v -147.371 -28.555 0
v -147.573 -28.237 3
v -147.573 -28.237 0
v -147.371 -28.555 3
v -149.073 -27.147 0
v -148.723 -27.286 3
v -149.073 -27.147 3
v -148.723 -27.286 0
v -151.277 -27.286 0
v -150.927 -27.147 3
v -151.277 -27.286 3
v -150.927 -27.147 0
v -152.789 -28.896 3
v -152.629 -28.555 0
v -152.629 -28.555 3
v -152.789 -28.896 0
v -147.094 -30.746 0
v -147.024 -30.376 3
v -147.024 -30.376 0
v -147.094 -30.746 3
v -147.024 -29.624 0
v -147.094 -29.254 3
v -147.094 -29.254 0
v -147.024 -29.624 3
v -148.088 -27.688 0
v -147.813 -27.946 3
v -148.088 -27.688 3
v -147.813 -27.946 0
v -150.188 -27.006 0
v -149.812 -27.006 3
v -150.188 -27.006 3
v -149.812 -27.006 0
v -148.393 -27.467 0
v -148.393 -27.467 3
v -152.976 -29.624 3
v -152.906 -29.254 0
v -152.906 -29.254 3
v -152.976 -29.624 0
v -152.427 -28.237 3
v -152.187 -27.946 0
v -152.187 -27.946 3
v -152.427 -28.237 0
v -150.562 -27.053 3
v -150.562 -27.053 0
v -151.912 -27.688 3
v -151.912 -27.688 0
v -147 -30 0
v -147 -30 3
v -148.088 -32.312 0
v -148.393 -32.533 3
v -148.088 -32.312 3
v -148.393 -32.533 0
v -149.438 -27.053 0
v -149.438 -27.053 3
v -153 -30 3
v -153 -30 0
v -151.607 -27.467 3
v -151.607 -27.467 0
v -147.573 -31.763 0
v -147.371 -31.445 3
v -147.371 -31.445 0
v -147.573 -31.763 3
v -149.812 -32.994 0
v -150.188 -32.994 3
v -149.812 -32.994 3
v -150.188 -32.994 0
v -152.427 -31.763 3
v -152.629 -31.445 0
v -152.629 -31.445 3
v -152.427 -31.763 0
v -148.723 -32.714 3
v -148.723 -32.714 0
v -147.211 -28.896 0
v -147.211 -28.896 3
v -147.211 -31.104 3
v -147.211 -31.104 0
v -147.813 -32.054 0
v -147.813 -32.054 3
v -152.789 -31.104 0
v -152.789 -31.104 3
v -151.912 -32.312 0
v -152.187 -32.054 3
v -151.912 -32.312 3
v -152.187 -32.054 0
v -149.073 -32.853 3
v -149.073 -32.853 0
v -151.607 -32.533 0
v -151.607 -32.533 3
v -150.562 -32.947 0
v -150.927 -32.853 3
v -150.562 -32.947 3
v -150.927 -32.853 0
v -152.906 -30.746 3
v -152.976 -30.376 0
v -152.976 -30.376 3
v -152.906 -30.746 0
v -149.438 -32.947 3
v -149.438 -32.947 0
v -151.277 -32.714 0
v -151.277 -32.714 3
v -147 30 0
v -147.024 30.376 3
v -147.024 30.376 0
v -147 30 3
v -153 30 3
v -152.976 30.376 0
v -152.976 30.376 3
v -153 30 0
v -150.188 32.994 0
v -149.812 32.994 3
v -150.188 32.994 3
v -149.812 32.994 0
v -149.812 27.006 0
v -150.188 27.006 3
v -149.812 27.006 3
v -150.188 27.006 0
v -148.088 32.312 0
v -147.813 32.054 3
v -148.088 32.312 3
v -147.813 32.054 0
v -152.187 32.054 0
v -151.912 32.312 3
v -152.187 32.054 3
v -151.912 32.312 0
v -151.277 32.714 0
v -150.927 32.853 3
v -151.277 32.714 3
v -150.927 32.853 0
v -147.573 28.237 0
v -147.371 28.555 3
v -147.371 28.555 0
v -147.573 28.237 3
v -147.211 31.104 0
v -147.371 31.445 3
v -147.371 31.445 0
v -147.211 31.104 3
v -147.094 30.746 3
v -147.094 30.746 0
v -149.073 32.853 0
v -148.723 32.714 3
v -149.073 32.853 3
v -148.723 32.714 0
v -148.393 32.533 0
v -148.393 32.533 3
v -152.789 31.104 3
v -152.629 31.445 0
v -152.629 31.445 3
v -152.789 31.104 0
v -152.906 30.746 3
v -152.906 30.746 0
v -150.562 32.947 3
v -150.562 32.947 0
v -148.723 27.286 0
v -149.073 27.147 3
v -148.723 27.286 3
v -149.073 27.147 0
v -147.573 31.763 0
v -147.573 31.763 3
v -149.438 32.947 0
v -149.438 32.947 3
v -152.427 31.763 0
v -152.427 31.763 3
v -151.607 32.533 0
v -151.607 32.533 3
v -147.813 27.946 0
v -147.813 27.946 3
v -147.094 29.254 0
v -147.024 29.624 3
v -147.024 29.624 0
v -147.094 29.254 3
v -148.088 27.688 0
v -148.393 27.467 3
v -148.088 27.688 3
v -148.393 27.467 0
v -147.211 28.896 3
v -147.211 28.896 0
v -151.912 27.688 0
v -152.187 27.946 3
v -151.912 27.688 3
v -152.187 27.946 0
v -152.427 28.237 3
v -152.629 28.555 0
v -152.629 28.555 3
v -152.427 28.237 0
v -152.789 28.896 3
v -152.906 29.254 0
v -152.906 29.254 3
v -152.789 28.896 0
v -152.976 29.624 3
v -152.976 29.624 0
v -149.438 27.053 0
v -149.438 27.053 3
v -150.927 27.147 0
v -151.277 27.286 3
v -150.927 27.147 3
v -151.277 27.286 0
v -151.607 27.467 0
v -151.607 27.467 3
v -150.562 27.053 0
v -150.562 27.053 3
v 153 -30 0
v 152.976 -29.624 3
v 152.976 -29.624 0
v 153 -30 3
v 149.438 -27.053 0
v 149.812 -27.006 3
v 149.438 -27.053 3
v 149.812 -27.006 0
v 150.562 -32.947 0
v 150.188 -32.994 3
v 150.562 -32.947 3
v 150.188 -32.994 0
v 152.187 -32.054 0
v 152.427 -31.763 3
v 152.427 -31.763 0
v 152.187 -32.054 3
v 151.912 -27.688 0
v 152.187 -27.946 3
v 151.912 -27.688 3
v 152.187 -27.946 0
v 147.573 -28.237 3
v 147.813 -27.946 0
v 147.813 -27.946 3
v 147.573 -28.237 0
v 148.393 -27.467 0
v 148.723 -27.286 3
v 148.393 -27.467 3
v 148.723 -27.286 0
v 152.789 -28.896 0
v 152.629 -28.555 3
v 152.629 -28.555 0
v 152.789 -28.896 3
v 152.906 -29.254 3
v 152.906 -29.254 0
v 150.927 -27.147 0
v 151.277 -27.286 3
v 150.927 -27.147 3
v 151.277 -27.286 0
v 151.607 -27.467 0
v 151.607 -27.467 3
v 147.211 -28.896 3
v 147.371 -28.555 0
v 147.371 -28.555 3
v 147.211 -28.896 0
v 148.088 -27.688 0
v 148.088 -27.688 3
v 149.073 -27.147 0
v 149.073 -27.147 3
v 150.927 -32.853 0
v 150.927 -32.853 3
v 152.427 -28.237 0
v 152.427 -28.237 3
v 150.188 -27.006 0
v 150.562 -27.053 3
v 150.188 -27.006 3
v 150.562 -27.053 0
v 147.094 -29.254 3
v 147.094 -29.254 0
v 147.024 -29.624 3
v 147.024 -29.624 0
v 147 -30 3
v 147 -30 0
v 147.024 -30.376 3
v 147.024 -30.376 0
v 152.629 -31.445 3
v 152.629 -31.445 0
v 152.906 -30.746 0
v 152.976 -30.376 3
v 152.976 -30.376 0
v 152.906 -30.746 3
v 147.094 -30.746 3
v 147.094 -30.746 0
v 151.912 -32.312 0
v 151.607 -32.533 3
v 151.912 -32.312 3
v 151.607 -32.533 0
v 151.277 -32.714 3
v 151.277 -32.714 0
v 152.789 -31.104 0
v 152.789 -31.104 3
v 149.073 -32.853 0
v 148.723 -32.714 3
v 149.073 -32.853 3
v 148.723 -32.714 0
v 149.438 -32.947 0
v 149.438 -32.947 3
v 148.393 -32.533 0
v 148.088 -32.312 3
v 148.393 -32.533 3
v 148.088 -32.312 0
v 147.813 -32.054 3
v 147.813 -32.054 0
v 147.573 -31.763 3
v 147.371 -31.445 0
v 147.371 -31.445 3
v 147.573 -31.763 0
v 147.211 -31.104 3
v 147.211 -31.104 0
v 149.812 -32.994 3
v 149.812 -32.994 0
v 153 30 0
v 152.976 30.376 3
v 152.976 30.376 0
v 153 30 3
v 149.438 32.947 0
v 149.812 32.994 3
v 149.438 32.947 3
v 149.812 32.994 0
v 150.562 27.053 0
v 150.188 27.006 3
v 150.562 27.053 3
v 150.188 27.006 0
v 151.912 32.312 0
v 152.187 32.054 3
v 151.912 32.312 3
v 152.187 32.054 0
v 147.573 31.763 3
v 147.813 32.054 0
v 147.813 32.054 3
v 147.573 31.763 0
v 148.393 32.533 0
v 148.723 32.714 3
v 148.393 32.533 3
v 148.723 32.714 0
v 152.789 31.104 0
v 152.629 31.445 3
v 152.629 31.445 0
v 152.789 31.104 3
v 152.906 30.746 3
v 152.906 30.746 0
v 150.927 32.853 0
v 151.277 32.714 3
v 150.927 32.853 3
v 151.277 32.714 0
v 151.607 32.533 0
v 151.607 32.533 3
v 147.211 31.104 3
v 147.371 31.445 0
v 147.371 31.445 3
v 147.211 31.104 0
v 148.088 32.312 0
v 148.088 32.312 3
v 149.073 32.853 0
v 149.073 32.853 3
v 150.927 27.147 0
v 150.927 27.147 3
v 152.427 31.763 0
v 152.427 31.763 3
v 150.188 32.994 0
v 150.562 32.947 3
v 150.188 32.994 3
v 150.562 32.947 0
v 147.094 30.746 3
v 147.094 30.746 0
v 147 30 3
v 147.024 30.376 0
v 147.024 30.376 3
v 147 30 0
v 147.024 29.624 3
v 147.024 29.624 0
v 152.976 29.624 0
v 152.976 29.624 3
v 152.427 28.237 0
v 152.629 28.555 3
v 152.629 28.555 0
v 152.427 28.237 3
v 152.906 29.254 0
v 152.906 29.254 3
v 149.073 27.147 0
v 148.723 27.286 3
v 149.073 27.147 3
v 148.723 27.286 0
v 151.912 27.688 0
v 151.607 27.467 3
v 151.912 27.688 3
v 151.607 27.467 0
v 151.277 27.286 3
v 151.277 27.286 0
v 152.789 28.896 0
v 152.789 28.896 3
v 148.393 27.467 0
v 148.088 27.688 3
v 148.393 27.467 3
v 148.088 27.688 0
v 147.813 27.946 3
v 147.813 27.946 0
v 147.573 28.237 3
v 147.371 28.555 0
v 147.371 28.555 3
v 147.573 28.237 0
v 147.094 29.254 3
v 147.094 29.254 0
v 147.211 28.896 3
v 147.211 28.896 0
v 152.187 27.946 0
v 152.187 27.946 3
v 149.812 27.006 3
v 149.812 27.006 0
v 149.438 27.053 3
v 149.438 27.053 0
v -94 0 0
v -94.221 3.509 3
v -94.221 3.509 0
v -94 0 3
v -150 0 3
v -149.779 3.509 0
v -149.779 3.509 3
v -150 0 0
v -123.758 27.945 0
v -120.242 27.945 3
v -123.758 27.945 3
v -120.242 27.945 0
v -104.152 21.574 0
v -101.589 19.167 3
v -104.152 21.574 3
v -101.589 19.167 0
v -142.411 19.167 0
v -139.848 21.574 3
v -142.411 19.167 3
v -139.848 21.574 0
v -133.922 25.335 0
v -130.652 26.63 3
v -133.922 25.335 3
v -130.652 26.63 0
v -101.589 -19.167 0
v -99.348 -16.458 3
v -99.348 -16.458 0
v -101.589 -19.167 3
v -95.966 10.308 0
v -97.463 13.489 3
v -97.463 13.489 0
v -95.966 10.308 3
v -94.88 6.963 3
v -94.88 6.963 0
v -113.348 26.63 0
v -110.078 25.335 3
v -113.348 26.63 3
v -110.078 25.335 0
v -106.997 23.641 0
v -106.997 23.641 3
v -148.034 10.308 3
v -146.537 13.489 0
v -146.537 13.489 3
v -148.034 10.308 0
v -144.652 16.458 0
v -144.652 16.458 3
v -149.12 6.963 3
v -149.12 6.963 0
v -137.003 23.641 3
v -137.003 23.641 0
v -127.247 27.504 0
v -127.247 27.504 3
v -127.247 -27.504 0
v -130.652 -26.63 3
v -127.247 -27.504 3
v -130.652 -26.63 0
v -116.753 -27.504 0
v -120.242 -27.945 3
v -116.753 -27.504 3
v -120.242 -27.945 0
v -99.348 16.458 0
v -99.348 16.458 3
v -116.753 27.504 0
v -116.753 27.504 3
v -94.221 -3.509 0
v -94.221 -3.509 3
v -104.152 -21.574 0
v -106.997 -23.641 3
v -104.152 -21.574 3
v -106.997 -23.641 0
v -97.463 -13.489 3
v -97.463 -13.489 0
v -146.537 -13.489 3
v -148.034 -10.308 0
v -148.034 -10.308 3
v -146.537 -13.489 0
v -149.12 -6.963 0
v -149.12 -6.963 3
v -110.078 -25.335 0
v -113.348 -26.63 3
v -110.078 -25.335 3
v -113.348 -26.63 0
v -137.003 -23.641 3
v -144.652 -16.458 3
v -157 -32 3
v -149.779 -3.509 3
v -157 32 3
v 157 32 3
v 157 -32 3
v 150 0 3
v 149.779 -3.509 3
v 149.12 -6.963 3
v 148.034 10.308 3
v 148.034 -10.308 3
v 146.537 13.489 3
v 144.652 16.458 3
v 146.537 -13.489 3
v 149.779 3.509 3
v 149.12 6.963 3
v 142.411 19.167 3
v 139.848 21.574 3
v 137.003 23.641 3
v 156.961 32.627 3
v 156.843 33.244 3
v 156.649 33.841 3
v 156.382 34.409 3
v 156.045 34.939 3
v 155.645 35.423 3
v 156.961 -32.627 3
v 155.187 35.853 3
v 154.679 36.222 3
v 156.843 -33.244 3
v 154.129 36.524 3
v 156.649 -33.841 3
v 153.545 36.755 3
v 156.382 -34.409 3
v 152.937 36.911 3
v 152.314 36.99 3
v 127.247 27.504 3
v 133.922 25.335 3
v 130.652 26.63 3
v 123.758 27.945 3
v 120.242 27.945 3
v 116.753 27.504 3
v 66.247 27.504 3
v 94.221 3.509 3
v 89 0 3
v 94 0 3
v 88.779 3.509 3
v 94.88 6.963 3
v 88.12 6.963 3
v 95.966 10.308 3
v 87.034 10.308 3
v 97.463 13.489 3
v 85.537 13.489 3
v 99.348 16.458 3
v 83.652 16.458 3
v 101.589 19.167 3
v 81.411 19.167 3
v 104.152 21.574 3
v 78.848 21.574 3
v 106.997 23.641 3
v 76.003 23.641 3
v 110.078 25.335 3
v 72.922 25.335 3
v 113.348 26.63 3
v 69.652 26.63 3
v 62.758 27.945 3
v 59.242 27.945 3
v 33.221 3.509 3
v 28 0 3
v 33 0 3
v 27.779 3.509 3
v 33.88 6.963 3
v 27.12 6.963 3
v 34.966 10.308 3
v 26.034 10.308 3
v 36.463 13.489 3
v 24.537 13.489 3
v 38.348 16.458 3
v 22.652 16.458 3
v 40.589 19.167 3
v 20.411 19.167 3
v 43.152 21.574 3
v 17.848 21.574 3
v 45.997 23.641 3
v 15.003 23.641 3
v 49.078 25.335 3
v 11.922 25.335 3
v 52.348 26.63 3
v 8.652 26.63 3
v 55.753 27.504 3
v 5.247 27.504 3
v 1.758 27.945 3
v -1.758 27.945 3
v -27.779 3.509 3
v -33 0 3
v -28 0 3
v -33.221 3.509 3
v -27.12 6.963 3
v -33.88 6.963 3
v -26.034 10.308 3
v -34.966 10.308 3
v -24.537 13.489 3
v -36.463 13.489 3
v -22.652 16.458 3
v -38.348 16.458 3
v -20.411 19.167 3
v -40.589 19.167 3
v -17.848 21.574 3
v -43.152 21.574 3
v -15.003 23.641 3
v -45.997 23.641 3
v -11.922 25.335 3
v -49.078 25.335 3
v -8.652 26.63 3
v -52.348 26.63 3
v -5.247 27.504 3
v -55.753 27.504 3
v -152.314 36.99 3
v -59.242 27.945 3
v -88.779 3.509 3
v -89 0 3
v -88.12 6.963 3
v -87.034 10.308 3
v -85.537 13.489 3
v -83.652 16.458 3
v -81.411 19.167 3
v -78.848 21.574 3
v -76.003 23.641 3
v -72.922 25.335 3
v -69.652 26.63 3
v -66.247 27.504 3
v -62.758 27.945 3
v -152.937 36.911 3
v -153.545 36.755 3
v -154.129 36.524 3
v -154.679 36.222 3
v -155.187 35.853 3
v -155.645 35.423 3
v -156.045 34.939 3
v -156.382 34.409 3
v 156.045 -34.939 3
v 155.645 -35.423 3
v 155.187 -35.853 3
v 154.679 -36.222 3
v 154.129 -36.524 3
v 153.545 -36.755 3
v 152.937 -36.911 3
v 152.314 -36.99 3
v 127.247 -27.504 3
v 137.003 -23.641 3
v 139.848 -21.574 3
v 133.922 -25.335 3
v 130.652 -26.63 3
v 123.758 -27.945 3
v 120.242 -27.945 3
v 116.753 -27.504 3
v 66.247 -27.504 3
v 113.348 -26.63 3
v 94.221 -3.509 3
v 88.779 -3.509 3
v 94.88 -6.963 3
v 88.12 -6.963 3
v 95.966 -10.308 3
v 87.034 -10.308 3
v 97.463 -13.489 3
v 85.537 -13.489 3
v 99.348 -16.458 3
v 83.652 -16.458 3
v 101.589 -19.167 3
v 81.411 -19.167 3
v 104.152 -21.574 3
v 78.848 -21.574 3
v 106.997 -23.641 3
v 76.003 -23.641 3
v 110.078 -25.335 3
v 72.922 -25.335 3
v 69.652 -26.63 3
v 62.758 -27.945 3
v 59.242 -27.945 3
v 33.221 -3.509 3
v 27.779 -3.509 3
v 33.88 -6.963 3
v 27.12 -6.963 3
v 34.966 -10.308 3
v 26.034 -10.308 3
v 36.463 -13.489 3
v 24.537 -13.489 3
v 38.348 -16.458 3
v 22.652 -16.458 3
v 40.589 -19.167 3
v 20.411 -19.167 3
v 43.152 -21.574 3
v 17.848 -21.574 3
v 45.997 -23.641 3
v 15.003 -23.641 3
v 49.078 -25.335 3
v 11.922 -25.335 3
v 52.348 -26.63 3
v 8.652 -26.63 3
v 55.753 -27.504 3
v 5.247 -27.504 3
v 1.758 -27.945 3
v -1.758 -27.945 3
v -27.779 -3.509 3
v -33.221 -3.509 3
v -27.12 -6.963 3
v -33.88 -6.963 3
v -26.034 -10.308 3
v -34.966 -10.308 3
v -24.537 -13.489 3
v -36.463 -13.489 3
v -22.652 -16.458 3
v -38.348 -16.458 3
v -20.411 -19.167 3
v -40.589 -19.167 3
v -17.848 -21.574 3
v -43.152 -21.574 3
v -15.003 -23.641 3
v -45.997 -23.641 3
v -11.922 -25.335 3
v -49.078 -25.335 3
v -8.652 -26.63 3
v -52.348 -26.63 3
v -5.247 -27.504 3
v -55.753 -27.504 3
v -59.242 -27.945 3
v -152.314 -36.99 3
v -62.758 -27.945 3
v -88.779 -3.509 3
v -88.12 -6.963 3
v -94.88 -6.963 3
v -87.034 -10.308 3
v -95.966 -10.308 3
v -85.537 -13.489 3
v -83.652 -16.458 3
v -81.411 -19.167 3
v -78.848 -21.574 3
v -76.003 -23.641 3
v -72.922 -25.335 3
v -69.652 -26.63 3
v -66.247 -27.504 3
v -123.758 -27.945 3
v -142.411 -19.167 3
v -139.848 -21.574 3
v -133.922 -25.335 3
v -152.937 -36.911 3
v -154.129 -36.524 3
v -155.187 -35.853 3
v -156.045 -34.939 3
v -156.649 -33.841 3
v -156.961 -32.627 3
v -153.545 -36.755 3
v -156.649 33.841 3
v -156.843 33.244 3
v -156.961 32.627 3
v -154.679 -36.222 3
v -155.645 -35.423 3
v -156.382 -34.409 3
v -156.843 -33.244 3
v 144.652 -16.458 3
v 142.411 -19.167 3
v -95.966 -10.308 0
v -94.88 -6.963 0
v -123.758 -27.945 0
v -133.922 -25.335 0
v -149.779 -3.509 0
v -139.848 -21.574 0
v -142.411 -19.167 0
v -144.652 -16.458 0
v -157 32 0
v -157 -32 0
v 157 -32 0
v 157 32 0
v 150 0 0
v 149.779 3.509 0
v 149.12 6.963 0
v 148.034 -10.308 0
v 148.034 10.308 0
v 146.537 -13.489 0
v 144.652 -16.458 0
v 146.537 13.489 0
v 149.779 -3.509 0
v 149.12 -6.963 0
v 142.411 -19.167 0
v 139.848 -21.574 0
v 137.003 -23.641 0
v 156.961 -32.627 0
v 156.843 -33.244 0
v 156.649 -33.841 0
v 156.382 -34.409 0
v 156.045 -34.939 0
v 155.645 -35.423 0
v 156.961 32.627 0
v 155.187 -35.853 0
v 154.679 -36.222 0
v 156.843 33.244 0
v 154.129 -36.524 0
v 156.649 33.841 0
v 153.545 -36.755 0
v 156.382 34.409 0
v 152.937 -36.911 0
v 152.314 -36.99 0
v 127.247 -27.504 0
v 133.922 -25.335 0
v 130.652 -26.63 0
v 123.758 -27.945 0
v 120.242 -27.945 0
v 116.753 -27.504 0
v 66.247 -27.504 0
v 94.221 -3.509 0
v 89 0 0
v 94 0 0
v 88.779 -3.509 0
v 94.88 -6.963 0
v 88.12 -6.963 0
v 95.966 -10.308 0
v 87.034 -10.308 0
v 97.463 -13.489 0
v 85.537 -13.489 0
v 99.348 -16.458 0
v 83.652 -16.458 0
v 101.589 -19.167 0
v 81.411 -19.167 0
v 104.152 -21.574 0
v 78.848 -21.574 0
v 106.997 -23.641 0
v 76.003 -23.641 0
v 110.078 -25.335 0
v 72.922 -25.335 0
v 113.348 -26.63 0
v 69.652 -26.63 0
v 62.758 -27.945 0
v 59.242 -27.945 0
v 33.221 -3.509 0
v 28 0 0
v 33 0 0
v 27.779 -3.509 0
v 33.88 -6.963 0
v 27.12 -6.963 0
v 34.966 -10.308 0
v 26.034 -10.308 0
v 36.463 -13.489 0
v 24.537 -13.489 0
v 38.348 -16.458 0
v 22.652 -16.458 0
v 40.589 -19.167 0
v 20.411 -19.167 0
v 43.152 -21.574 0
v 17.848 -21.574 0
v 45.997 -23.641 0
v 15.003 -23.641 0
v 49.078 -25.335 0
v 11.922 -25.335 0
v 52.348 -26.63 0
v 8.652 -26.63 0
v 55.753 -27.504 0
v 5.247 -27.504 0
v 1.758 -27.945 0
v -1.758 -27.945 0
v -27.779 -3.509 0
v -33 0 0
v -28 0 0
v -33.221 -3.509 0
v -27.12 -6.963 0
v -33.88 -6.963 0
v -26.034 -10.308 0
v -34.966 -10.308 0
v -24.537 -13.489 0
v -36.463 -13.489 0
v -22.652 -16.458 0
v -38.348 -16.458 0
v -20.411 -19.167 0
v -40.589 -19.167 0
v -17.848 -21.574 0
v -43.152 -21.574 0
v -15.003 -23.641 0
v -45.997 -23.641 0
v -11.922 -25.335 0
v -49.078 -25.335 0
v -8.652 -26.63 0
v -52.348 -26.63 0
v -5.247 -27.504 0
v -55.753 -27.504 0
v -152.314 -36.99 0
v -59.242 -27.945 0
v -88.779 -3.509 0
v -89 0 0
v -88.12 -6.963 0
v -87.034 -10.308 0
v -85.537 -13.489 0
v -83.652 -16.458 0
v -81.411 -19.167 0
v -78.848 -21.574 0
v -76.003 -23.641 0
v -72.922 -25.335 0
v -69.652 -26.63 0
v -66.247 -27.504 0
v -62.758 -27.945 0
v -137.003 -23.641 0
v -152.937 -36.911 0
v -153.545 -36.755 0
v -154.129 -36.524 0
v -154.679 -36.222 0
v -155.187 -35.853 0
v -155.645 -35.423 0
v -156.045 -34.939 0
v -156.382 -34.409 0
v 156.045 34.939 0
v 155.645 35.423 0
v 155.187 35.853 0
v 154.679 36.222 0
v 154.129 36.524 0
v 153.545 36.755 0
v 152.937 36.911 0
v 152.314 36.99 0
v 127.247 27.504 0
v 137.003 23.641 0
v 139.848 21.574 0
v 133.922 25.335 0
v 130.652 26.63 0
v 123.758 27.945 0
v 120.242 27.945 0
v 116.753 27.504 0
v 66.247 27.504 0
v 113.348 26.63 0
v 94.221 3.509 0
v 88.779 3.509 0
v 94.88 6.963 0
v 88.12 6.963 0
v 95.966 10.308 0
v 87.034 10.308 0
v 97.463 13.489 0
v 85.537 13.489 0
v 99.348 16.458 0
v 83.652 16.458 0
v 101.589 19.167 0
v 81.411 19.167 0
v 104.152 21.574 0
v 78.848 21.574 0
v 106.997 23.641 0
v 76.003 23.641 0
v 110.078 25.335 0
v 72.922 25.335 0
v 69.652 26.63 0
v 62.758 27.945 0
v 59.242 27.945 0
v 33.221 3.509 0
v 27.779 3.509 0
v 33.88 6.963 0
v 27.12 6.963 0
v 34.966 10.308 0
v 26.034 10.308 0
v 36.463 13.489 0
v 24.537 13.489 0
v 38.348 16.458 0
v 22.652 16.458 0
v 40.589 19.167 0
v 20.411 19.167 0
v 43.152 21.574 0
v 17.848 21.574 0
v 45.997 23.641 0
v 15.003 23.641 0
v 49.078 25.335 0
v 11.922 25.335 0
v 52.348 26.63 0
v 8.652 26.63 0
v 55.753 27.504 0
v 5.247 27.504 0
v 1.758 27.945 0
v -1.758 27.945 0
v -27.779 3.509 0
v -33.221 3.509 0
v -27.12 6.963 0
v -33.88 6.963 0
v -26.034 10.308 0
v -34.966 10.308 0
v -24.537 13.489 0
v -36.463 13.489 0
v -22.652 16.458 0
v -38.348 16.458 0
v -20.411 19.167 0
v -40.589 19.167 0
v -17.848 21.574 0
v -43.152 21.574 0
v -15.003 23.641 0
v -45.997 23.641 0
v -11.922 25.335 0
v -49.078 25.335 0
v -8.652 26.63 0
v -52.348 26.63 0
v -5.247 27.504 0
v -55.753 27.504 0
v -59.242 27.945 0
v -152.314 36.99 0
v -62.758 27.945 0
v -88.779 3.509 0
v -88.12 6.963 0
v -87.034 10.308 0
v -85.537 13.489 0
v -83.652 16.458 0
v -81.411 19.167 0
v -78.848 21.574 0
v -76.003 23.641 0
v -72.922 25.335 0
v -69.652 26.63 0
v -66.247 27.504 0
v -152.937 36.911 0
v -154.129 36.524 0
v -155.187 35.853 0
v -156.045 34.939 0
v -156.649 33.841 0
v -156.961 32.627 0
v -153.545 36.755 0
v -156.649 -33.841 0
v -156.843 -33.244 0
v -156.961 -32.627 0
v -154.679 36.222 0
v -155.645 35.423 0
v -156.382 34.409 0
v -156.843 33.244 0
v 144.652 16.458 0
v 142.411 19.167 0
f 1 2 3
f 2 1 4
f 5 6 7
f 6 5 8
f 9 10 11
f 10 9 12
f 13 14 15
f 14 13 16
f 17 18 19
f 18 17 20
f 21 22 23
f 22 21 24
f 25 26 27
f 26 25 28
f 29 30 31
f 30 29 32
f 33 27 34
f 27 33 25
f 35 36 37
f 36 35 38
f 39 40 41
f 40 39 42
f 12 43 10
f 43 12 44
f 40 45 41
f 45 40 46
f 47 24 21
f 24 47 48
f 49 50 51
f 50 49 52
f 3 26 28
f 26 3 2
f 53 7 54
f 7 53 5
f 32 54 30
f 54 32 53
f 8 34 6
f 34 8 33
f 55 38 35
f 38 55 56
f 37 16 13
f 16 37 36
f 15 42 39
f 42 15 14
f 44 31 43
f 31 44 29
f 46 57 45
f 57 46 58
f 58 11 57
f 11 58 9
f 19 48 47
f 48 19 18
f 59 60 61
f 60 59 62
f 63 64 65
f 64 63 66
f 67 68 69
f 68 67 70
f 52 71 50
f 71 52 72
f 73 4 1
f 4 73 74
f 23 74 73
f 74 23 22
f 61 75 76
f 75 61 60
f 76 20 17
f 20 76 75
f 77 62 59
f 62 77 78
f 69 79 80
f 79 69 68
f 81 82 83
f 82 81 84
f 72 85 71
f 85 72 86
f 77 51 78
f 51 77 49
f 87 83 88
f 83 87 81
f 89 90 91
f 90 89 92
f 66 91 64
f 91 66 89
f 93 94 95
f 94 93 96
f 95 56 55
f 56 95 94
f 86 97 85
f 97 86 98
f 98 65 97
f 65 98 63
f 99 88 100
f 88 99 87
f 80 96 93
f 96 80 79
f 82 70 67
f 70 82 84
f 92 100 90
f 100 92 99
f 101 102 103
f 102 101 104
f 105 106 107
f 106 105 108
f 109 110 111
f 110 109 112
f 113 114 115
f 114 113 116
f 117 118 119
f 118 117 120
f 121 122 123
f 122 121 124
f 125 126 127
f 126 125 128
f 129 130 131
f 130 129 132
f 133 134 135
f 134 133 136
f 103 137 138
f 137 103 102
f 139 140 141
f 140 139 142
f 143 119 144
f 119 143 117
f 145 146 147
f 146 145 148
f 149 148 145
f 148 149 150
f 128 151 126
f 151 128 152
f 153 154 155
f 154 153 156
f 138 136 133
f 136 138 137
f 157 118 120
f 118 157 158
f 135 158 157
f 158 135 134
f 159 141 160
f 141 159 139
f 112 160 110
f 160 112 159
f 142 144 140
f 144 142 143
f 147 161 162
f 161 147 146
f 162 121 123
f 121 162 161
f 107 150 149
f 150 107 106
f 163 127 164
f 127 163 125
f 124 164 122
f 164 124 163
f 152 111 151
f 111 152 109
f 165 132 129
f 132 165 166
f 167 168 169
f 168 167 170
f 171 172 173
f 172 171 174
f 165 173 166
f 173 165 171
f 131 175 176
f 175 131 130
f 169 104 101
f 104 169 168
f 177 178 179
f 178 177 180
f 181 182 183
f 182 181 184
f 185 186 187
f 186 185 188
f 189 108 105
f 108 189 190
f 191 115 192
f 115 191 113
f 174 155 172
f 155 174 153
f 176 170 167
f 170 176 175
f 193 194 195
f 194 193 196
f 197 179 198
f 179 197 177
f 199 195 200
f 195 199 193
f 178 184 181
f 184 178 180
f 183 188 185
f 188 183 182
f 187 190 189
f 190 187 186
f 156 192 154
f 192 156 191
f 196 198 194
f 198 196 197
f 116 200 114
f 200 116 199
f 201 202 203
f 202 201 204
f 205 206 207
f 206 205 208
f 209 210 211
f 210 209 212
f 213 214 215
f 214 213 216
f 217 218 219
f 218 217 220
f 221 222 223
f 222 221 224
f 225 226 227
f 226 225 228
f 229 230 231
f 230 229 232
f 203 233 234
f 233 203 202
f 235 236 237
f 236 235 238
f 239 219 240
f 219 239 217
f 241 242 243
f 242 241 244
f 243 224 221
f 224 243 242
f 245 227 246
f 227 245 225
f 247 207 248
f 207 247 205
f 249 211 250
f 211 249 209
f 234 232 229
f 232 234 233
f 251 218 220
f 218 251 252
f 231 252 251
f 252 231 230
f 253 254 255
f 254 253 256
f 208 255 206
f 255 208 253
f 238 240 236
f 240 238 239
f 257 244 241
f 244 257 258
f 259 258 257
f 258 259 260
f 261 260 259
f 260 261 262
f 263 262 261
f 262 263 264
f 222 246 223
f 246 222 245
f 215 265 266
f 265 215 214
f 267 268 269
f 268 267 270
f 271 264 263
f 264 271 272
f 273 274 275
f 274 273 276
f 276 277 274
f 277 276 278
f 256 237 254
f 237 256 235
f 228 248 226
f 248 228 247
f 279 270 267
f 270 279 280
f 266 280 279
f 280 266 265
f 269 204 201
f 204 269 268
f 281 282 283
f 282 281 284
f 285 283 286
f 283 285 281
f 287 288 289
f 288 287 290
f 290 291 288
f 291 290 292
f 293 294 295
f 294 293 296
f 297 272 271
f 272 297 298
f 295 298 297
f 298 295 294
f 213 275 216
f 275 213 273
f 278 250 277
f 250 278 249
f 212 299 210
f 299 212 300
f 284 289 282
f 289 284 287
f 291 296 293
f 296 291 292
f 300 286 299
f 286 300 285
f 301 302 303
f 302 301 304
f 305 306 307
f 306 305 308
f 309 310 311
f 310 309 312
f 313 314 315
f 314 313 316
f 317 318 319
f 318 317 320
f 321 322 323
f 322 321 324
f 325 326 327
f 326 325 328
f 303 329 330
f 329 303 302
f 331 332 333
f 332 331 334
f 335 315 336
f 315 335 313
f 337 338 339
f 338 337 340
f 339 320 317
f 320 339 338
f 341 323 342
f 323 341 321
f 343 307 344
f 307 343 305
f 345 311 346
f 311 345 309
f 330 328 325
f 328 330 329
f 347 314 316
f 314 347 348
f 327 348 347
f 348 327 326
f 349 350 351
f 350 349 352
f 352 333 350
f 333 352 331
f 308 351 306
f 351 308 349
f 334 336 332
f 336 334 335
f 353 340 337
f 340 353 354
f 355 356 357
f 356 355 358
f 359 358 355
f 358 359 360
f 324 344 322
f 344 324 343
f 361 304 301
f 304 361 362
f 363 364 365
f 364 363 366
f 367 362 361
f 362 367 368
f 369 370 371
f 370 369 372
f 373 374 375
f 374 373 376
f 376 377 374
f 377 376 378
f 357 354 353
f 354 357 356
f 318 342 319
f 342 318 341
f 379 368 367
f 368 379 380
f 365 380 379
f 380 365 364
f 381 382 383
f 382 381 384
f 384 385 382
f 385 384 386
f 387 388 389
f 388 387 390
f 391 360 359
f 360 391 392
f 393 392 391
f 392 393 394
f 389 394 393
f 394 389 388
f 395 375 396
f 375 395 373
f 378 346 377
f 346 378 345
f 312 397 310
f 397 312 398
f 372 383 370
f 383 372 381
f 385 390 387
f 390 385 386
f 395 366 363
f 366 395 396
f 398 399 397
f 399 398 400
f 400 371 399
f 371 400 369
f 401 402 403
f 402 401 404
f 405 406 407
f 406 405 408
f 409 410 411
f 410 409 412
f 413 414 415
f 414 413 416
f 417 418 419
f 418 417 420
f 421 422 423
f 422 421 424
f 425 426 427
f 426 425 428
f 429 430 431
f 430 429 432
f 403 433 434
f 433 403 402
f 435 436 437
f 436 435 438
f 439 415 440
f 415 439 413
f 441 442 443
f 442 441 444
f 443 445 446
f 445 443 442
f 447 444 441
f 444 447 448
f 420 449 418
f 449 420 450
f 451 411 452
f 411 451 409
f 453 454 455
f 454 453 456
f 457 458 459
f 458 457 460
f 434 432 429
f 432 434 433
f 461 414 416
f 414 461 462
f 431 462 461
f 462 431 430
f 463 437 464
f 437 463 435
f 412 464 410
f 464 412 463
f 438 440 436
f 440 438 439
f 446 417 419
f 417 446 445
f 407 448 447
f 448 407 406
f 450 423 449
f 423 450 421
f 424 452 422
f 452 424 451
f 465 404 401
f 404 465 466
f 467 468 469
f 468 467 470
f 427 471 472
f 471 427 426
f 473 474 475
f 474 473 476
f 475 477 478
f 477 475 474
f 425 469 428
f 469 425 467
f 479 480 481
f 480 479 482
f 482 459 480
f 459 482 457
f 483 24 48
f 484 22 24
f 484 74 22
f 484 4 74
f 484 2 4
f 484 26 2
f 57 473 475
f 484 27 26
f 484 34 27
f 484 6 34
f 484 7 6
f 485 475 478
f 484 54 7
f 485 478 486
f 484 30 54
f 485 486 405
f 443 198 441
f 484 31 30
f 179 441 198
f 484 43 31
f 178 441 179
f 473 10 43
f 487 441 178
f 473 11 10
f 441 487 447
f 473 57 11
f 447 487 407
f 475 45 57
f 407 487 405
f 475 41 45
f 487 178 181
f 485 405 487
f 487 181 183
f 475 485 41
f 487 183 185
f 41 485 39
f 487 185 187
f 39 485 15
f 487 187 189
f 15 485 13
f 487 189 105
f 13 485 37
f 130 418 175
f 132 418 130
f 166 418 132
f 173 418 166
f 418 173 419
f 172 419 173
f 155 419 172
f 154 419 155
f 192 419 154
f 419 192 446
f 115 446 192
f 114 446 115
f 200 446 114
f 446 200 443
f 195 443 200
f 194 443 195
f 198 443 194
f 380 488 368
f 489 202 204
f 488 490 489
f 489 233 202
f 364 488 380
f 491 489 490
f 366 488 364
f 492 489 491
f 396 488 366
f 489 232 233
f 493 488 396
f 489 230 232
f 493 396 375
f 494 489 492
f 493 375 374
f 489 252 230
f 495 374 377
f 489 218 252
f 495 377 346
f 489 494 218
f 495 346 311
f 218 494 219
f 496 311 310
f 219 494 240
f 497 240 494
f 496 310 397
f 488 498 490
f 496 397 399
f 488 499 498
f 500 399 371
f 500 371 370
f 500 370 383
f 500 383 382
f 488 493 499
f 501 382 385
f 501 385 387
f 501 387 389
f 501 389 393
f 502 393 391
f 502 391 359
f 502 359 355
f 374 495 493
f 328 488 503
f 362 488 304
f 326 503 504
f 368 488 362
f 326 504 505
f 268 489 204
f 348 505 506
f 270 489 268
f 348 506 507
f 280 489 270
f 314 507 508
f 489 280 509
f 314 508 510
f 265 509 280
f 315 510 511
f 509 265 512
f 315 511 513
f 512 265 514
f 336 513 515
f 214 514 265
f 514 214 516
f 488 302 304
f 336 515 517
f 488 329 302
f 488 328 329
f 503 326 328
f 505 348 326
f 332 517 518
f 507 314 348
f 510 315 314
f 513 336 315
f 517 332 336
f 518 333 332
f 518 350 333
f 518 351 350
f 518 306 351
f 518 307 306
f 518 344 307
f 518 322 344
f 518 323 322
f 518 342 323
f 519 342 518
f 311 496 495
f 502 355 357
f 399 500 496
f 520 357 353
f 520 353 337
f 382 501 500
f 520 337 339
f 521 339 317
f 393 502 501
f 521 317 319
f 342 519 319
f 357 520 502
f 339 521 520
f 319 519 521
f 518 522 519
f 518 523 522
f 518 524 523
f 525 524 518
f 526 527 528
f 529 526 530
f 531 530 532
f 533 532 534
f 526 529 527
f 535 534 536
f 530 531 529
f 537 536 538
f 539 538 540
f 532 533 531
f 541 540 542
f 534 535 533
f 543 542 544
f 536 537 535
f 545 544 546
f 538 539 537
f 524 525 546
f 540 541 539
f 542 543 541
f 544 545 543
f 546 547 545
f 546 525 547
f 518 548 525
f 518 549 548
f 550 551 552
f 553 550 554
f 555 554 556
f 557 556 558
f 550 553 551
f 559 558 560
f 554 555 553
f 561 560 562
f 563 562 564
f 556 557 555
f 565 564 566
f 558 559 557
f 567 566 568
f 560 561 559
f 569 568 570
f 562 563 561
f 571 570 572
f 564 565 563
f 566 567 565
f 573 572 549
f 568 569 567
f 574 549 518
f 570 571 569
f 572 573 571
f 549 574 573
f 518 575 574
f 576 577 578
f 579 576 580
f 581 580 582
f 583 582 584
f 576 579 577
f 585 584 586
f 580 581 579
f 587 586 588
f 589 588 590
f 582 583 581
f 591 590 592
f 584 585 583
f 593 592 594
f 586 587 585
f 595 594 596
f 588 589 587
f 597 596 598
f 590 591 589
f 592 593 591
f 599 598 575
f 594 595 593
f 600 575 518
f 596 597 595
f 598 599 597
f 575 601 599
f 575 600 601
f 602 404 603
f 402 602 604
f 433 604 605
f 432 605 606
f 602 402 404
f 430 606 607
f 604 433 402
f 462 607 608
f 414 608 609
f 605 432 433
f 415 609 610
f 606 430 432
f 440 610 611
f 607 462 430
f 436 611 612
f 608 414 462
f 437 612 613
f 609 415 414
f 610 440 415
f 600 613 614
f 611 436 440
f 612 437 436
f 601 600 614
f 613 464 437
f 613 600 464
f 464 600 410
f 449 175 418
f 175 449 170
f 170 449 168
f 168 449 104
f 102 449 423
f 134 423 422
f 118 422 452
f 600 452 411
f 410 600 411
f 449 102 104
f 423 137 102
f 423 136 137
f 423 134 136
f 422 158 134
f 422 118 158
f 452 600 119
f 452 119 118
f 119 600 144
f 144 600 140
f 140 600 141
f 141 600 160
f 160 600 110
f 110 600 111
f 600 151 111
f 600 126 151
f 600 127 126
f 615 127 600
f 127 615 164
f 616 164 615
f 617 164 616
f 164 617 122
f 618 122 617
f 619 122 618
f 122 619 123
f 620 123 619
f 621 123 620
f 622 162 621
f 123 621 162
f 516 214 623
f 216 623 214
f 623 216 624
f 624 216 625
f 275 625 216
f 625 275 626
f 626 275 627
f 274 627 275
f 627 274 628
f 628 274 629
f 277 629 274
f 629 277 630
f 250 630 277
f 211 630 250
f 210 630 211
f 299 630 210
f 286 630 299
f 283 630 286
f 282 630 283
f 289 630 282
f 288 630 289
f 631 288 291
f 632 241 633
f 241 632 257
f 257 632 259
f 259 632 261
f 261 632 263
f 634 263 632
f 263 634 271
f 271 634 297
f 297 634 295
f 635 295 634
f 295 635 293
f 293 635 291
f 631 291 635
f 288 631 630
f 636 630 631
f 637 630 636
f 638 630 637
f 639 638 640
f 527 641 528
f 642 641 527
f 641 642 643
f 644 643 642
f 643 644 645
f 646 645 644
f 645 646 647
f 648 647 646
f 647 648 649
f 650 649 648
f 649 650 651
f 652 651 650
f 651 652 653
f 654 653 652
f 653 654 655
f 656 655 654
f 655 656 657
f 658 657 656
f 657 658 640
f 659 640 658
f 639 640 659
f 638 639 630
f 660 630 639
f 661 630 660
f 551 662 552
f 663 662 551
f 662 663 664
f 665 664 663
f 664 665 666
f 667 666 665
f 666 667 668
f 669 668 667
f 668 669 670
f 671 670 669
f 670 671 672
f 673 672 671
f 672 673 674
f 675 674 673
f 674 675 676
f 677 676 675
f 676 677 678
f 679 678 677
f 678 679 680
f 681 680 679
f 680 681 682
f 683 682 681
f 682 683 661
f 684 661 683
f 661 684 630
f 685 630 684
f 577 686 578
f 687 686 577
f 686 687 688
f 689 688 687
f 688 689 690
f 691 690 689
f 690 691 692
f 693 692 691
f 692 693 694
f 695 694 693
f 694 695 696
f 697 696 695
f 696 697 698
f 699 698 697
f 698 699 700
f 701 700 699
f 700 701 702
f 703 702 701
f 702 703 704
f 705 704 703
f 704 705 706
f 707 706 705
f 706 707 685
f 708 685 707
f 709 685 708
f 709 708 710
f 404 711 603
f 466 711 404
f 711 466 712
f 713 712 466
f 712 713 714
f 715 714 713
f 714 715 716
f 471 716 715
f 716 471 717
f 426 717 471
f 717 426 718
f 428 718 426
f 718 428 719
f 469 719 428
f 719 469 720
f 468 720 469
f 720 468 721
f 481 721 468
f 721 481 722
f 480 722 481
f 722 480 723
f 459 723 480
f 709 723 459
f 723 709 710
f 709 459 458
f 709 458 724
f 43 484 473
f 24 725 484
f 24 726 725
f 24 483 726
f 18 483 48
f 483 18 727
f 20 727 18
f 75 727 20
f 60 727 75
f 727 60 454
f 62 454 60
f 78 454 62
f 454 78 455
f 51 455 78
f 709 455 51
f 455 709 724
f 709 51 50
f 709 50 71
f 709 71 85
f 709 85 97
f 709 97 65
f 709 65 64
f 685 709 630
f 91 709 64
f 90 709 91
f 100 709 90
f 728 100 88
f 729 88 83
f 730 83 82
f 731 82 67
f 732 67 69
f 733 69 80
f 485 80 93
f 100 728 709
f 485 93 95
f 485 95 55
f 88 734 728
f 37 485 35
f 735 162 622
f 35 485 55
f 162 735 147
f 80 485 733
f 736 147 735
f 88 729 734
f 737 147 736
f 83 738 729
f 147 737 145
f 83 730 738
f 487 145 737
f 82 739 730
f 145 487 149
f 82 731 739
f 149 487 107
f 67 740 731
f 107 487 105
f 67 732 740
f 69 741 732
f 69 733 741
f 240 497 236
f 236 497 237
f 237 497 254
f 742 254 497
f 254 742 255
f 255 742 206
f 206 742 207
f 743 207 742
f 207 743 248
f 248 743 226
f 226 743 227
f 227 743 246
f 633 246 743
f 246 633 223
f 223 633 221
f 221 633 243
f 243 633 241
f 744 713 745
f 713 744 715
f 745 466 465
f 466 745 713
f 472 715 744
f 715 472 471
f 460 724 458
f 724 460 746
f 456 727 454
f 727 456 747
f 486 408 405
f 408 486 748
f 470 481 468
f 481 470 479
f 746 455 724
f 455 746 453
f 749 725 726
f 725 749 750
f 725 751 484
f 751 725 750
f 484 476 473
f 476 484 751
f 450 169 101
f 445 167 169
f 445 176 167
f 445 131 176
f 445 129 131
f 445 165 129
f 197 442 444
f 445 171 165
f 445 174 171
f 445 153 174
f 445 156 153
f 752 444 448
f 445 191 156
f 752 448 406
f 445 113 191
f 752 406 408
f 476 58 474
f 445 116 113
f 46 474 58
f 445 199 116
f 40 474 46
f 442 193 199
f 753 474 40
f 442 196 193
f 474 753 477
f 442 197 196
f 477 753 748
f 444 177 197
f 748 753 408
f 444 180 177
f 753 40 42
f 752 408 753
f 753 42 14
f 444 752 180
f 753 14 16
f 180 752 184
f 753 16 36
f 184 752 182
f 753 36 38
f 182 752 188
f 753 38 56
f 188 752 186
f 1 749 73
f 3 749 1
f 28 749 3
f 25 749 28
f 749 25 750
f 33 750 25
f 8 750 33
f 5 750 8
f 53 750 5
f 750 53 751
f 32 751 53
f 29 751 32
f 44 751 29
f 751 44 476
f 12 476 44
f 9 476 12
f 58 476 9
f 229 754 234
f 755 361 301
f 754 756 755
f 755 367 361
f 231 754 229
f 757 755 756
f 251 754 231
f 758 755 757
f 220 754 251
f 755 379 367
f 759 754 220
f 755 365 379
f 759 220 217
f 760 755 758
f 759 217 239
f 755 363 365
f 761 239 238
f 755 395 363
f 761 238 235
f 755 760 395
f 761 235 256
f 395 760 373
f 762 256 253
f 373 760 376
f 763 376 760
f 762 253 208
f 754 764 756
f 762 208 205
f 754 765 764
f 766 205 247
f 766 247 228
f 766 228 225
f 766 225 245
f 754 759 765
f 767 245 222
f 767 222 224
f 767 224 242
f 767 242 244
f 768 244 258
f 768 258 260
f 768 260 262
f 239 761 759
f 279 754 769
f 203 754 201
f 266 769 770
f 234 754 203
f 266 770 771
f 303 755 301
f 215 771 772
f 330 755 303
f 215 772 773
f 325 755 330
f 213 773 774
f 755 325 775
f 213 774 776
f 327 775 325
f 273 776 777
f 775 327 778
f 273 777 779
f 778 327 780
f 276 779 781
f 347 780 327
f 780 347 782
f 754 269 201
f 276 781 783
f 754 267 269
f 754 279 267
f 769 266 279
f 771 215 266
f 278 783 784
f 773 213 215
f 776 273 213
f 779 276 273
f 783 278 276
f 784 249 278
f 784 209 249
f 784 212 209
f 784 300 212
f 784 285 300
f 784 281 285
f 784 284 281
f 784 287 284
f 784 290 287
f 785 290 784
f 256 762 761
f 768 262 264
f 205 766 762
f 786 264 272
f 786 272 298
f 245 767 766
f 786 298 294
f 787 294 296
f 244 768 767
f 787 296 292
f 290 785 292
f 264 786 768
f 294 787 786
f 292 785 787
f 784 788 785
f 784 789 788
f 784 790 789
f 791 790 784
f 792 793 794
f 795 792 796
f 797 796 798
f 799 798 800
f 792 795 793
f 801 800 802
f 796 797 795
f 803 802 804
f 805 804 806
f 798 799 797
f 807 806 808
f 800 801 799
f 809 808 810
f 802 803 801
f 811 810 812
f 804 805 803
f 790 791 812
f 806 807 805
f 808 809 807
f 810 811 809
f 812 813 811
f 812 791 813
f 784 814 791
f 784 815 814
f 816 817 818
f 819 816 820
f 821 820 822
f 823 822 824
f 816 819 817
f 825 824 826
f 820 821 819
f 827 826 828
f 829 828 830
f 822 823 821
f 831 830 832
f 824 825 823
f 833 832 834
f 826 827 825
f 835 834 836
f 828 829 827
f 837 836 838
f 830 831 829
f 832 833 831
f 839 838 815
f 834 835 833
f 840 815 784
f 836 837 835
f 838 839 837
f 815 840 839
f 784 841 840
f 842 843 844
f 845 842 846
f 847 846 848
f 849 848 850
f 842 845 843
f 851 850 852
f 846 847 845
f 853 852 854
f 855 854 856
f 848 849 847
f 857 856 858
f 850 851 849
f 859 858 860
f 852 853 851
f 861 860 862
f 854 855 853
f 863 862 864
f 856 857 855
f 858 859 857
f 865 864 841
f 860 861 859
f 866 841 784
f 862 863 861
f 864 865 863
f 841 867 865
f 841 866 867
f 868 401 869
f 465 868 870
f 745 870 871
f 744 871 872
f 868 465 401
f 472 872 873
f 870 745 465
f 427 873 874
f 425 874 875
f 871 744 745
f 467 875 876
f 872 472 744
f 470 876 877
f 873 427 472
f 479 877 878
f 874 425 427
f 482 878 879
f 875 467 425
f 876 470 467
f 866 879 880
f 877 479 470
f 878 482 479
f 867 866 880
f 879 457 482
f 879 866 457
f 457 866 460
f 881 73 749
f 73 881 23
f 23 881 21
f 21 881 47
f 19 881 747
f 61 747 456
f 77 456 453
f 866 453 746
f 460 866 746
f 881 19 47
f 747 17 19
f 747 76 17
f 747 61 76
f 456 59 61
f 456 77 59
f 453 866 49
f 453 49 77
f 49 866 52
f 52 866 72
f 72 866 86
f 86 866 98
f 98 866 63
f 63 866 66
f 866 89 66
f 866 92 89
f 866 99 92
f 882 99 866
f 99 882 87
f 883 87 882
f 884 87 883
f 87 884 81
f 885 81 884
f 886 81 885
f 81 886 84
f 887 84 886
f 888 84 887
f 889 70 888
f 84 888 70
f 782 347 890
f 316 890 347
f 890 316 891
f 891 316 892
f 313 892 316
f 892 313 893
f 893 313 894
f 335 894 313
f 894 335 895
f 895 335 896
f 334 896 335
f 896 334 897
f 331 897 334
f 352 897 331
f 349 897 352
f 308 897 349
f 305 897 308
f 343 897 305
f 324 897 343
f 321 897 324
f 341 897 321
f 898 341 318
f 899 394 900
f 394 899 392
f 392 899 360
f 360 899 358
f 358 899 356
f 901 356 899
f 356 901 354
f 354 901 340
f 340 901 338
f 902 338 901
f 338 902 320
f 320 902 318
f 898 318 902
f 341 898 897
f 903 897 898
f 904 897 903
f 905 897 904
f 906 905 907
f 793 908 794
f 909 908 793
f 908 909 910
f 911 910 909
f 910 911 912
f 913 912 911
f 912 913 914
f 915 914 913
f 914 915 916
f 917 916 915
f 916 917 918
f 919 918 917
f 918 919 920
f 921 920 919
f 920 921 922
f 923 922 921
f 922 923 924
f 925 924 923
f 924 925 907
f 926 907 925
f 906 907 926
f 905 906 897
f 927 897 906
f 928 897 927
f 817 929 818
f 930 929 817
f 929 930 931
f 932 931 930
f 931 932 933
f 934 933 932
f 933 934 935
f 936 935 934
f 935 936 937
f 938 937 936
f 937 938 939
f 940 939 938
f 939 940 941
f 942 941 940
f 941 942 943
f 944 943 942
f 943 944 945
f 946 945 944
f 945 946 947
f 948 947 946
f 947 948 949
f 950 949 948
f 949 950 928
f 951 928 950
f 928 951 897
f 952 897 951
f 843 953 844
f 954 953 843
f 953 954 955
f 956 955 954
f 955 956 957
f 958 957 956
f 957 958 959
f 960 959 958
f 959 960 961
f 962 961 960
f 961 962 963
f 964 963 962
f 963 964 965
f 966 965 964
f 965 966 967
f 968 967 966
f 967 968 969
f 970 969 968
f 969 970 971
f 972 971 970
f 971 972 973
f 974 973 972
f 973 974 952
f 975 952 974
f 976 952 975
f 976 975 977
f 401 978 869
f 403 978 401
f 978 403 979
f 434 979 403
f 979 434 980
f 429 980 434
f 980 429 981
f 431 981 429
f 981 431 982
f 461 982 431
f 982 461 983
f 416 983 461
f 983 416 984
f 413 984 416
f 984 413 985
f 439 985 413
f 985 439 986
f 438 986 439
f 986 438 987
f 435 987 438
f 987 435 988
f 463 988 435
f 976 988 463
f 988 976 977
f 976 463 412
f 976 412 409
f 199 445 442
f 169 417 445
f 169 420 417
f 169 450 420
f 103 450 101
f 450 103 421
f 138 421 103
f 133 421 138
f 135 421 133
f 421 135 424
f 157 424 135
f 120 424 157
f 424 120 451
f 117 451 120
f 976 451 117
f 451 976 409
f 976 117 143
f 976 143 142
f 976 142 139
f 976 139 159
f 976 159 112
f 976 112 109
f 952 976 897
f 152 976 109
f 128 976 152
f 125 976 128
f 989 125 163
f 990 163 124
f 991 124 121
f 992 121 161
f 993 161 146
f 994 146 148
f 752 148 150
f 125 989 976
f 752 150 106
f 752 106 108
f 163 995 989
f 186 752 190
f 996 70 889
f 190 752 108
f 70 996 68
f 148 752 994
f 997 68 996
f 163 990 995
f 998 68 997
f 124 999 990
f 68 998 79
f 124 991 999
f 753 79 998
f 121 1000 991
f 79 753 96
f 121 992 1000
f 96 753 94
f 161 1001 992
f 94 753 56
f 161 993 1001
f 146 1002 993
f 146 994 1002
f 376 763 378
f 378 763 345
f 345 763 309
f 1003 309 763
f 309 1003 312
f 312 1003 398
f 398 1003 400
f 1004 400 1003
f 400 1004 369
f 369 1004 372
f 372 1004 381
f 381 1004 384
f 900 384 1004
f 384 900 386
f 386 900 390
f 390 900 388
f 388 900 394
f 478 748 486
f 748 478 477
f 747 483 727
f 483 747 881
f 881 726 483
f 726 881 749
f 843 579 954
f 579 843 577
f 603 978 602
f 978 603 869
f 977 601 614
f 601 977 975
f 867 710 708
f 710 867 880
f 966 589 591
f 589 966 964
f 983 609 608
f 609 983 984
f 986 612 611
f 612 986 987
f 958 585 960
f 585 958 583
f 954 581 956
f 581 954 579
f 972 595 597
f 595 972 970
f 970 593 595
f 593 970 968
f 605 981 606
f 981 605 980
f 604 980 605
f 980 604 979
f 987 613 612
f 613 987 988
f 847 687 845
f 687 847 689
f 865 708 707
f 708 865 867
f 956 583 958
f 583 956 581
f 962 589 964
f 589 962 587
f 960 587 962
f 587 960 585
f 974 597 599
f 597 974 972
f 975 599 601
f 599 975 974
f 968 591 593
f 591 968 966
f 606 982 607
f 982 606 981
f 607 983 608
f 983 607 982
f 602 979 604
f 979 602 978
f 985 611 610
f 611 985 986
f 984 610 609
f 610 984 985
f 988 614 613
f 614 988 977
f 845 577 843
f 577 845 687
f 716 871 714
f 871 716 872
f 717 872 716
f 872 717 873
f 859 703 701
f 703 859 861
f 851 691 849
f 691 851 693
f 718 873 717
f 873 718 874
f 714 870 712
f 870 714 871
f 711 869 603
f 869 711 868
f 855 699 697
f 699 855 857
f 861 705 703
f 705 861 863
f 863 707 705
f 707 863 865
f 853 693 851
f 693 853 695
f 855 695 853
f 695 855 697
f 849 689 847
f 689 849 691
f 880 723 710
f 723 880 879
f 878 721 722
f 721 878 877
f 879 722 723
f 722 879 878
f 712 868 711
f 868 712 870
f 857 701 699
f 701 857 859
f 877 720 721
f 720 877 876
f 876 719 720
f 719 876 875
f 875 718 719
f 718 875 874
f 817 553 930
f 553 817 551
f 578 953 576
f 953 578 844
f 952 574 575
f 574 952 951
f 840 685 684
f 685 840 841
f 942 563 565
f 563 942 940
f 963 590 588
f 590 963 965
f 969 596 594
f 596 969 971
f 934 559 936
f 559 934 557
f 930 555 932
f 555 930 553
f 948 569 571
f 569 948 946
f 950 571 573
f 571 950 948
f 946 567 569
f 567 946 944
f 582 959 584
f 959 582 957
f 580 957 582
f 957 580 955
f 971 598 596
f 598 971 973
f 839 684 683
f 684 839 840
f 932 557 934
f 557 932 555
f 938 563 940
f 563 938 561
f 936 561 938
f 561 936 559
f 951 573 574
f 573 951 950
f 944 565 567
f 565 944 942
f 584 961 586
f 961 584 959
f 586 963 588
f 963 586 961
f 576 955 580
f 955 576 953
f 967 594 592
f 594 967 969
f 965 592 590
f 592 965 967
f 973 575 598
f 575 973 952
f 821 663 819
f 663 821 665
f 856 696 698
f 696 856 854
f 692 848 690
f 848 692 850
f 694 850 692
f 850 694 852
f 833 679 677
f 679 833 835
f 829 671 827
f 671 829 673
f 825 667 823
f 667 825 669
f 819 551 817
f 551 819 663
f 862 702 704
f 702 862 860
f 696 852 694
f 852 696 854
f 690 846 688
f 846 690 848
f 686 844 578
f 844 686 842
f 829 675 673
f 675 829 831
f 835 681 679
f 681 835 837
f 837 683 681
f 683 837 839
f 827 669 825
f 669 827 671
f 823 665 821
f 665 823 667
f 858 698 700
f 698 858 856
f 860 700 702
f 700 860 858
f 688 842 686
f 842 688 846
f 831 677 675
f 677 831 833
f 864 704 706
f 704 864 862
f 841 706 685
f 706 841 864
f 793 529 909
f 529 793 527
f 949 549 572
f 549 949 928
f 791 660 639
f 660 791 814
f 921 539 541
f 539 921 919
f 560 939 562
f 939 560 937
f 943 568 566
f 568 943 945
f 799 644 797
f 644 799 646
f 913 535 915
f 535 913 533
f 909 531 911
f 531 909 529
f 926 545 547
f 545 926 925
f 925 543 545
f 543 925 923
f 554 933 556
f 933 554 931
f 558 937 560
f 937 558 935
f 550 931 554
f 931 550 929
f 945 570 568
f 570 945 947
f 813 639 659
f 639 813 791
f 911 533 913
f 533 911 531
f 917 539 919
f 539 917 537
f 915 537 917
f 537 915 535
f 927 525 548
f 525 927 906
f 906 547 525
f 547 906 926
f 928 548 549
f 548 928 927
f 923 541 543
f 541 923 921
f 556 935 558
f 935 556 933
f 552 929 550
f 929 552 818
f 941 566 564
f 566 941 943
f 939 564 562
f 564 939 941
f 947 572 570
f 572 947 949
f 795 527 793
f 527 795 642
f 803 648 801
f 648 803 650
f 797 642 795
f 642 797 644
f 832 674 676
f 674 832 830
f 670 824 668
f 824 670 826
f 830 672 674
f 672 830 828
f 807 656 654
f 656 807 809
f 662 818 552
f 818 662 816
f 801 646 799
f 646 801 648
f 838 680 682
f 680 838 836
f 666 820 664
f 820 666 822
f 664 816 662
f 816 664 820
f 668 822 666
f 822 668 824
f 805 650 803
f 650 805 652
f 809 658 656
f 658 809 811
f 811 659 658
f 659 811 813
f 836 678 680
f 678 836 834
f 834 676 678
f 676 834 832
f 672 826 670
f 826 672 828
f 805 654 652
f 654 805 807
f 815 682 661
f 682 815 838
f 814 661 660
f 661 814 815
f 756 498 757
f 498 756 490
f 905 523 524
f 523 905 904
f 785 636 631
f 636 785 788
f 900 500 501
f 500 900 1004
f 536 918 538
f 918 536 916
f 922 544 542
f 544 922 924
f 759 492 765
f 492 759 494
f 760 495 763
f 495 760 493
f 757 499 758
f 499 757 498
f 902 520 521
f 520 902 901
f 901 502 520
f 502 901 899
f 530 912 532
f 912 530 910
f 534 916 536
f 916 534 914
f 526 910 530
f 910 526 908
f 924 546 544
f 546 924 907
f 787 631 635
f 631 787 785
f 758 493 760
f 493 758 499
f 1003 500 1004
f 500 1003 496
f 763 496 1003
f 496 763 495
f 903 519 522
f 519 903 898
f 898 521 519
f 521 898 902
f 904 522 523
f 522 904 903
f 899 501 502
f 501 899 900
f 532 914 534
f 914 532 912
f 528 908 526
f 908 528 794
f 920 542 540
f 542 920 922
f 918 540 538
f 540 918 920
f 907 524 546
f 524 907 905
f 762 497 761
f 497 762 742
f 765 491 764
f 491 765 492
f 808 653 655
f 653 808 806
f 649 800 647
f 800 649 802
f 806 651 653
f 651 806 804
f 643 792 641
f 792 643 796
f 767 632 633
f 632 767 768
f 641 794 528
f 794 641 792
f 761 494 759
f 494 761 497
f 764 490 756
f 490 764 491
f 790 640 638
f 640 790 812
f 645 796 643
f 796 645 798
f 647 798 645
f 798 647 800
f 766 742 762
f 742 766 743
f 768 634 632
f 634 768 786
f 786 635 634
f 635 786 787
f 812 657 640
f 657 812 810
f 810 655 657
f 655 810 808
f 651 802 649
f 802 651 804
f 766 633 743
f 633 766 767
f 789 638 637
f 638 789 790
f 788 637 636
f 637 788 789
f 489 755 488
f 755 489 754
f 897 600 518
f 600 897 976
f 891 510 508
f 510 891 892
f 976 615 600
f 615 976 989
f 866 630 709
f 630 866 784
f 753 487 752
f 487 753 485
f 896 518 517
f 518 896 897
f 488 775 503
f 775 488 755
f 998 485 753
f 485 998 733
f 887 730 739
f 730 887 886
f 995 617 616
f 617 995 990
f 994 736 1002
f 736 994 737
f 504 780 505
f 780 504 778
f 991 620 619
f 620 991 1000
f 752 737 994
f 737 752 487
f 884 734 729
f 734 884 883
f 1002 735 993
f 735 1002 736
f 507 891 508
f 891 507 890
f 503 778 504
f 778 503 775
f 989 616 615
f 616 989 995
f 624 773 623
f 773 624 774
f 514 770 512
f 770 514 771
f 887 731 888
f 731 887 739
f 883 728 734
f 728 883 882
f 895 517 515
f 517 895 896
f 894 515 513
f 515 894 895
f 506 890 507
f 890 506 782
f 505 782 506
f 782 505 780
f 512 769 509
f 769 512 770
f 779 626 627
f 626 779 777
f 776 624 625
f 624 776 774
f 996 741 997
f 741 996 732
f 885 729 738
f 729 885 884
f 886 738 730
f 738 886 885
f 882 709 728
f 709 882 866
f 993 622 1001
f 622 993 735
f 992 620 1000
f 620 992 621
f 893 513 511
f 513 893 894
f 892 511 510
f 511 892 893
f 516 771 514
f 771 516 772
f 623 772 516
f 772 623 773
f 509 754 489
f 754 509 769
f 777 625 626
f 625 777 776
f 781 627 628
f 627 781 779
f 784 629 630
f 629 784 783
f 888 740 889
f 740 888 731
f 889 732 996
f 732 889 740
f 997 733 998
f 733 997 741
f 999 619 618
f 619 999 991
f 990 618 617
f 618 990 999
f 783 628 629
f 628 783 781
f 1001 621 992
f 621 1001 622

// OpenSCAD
$fn = 50;


difference() {
	union() {
		hull() {
			translate(v = [-152.0000000000, 32.0000000000, 0]) {
				cylinder(h = 3, r = 5);
			}
			translate(v = [152.0000000000, 32.0000000000, 0]) {
				cylinder(h = 3, r = 5);
			}
			translate(v = [-152.0000000000, -32.0000000000, 0]) {
				cylinder(h = 3, r = 5);
			}
			translate(v = [152.0000000000, -32.0000000000, 0]) {
				cylinder(h = 3, r = 5);
			}
		}
	}
	union() {
		#translate(v = [-150.0000000000, -30.0000000000, -100.0000000000]) {
			cylinder(h = 200, r = 3.0000000000);
		}
		#translate(v = [-150.0000000000, 30.0000000000, -100.0000000000]) {
			cylinder(h = 200, r = 3.0000000000);
		}
		#translate(v = [150.0000000000, -30.0000000000, -100.0000000000]) {
			cylinder(h = 200, r = 3.0000000000);
		}
		#translate(v = [150.0000000000, 30.0000000000, -100.0000000000]) {
			cylinder(h = 200, r = 3.0000000000);
		}
		#translate(v = [-122.0000000000, 0, 0]) {
			cylinder(h = 3, r = 28.0000000000);
		}
		#translate(v = [-61.0000000000, 0, 0]) {
			cylinder(h = 3, r = 28.0000000000);
		}
		#cylinder(h = 3, r = 28.0000000000);
		#translate(v = [61.0000000000, 0, 0]) {
			cylinder(h = 3, r = 28.0000000000);
		}
		#translate(v = [122.0000000000, 0, 0]) {
			cylinder(h = 3, r = 28.0000000000);
		}
	}
}
